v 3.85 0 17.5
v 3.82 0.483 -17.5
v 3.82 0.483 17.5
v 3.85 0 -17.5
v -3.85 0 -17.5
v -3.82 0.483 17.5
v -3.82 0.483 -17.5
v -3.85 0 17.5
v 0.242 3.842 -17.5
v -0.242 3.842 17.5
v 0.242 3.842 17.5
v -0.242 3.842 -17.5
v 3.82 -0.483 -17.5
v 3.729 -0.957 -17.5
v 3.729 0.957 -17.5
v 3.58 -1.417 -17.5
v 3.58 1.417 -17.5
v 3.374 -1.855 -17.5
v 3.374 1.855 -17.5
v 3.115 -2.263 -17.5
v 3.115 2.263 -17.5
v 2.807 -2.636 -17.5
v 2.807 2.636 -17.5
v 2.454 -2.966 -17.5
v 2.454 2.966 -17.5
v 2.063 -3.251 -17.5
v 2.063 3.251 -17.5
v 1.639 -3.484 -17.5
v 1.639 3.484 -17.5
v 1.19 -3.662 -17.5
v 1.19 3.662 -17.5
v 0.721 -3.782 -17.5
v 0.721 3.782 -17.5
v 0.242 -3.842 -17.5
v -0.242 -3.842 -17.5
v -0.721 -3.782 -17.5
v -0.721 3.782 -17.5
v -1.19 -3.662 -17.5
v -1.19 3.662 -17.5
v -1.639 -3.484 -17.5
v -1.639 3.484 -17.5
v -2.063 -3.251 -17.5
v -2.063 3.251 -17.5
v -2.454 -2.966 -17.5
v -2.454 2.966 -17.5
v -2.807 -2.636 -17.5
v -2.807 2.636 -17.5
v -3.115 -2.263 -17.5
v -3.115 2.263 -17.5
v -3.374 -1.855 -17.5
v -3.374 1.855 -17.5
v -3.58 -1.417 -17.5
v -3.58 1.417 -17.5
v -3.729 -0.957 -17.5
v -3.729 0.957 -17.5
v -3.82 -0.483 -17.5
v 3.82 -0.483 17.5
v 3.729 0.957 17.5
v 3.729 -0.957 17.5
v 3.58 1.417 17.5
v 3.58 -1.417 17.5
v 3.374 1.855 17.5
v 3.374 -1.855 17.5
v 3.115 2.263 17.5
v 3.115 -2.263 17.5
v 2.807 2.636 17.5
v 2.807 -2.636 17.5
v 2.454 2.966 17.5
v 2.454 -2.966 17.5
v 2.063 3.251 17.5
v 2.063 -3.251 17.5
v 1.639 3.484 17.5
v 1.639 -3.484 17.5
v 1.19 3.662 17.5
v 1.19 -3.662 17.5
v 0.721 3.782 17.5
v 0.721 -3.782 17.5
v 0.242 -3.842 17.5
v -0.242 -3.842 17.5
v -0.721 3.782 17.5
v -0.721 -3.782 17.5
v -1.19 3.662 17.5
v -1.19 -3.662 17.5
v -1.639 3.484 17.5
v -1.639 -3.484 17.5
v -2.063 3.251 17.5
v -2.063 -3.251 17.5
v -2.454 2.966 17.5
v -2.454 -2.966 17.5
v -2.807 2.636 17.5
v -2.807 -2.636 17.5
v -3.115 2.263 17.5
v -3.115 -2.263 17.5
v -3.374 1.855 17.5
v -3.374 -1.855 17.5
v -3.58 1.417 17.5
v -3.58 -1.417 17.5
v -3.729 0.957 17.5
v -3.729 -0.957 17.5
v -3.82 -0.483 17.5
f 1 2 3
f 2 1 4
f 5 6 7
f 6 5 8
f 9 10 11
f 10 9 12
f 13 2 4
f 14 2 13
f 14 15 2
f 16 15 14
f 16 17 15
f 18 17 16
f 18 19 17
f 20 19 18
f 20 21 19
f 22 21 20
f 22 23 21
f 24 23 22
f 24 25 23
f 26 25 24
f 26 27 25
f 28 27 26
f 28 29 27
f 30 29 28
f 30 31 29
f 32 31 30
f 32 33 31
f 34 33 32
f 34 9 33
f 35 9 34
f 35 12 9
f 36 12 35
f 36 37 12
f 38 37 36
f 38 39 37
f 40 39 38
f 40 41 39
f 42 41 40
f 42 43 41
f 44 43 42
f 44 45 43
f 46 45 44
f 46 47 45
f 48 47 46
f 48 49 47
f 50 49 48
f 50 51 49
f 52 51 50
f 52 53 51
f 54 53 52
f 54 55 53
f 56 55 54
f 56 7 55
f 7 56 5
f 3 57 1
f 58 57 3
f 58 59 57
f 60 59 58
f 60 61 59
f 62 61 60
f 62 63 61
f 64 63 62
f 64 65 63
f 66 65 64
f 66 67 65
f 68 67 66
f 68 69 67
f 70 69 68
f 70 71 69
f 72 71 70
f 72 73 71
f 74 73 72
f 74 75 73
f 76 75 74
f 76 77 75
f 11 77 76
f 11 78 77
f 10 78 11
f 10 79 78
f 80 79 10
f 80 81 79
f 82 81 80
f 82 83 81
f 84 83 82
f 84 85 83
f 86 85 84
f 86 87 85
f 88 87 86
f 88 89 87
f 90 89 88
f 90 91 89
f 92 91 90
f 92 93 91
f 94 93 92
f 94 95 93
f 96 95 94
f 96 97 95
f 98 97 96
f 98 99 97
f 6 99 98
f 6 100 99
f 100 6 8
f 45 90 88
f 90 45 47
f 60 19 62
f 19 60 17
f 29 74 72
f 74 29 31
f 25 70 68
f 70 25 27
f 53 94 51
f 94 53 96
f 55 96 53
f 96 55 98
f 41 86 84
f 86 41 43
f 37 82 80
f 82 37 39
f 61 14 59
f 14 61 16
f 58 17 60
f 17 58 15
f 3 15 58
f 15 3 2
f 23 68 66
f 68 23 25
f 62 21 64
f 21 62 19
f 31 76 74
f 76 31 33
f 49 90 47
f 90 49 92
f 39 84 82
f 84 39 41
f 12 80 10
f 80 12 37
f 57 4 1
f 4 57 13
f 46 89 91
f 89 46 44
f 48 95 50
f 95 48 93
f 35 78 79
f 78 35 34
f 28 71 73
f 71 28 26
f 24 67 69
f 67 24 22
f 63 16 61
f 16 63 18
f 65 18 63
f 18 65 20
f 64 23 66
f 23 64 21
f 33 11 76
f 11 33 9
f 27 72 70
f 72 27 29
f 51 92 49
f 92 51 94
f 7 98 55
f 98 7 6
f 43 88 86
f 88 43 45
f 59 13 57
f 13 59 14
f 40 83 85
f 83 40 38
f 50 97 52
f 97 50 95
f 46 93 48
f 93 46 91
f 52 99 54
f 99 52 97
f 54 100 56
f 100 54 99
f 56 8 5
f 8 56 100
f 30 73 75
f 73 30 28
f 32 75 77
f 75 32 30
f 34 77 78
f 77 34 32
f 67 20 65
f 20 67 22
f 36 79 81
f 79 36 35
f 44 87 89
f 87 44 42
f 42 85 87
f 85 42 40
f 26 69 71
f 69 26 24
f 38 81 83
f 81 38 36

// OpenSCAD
$fn = 50;


difference() {
	union() {
		translate(v = [0, 0, -17.5000000000]) {
			cylinder(h = 35, r = 3.8500000000);
		}
	}
	union() {
		translate(v = [0, 0, -100.0000000000]) {
			cylinder(h = 200, r = 0);
		}
	}
}
